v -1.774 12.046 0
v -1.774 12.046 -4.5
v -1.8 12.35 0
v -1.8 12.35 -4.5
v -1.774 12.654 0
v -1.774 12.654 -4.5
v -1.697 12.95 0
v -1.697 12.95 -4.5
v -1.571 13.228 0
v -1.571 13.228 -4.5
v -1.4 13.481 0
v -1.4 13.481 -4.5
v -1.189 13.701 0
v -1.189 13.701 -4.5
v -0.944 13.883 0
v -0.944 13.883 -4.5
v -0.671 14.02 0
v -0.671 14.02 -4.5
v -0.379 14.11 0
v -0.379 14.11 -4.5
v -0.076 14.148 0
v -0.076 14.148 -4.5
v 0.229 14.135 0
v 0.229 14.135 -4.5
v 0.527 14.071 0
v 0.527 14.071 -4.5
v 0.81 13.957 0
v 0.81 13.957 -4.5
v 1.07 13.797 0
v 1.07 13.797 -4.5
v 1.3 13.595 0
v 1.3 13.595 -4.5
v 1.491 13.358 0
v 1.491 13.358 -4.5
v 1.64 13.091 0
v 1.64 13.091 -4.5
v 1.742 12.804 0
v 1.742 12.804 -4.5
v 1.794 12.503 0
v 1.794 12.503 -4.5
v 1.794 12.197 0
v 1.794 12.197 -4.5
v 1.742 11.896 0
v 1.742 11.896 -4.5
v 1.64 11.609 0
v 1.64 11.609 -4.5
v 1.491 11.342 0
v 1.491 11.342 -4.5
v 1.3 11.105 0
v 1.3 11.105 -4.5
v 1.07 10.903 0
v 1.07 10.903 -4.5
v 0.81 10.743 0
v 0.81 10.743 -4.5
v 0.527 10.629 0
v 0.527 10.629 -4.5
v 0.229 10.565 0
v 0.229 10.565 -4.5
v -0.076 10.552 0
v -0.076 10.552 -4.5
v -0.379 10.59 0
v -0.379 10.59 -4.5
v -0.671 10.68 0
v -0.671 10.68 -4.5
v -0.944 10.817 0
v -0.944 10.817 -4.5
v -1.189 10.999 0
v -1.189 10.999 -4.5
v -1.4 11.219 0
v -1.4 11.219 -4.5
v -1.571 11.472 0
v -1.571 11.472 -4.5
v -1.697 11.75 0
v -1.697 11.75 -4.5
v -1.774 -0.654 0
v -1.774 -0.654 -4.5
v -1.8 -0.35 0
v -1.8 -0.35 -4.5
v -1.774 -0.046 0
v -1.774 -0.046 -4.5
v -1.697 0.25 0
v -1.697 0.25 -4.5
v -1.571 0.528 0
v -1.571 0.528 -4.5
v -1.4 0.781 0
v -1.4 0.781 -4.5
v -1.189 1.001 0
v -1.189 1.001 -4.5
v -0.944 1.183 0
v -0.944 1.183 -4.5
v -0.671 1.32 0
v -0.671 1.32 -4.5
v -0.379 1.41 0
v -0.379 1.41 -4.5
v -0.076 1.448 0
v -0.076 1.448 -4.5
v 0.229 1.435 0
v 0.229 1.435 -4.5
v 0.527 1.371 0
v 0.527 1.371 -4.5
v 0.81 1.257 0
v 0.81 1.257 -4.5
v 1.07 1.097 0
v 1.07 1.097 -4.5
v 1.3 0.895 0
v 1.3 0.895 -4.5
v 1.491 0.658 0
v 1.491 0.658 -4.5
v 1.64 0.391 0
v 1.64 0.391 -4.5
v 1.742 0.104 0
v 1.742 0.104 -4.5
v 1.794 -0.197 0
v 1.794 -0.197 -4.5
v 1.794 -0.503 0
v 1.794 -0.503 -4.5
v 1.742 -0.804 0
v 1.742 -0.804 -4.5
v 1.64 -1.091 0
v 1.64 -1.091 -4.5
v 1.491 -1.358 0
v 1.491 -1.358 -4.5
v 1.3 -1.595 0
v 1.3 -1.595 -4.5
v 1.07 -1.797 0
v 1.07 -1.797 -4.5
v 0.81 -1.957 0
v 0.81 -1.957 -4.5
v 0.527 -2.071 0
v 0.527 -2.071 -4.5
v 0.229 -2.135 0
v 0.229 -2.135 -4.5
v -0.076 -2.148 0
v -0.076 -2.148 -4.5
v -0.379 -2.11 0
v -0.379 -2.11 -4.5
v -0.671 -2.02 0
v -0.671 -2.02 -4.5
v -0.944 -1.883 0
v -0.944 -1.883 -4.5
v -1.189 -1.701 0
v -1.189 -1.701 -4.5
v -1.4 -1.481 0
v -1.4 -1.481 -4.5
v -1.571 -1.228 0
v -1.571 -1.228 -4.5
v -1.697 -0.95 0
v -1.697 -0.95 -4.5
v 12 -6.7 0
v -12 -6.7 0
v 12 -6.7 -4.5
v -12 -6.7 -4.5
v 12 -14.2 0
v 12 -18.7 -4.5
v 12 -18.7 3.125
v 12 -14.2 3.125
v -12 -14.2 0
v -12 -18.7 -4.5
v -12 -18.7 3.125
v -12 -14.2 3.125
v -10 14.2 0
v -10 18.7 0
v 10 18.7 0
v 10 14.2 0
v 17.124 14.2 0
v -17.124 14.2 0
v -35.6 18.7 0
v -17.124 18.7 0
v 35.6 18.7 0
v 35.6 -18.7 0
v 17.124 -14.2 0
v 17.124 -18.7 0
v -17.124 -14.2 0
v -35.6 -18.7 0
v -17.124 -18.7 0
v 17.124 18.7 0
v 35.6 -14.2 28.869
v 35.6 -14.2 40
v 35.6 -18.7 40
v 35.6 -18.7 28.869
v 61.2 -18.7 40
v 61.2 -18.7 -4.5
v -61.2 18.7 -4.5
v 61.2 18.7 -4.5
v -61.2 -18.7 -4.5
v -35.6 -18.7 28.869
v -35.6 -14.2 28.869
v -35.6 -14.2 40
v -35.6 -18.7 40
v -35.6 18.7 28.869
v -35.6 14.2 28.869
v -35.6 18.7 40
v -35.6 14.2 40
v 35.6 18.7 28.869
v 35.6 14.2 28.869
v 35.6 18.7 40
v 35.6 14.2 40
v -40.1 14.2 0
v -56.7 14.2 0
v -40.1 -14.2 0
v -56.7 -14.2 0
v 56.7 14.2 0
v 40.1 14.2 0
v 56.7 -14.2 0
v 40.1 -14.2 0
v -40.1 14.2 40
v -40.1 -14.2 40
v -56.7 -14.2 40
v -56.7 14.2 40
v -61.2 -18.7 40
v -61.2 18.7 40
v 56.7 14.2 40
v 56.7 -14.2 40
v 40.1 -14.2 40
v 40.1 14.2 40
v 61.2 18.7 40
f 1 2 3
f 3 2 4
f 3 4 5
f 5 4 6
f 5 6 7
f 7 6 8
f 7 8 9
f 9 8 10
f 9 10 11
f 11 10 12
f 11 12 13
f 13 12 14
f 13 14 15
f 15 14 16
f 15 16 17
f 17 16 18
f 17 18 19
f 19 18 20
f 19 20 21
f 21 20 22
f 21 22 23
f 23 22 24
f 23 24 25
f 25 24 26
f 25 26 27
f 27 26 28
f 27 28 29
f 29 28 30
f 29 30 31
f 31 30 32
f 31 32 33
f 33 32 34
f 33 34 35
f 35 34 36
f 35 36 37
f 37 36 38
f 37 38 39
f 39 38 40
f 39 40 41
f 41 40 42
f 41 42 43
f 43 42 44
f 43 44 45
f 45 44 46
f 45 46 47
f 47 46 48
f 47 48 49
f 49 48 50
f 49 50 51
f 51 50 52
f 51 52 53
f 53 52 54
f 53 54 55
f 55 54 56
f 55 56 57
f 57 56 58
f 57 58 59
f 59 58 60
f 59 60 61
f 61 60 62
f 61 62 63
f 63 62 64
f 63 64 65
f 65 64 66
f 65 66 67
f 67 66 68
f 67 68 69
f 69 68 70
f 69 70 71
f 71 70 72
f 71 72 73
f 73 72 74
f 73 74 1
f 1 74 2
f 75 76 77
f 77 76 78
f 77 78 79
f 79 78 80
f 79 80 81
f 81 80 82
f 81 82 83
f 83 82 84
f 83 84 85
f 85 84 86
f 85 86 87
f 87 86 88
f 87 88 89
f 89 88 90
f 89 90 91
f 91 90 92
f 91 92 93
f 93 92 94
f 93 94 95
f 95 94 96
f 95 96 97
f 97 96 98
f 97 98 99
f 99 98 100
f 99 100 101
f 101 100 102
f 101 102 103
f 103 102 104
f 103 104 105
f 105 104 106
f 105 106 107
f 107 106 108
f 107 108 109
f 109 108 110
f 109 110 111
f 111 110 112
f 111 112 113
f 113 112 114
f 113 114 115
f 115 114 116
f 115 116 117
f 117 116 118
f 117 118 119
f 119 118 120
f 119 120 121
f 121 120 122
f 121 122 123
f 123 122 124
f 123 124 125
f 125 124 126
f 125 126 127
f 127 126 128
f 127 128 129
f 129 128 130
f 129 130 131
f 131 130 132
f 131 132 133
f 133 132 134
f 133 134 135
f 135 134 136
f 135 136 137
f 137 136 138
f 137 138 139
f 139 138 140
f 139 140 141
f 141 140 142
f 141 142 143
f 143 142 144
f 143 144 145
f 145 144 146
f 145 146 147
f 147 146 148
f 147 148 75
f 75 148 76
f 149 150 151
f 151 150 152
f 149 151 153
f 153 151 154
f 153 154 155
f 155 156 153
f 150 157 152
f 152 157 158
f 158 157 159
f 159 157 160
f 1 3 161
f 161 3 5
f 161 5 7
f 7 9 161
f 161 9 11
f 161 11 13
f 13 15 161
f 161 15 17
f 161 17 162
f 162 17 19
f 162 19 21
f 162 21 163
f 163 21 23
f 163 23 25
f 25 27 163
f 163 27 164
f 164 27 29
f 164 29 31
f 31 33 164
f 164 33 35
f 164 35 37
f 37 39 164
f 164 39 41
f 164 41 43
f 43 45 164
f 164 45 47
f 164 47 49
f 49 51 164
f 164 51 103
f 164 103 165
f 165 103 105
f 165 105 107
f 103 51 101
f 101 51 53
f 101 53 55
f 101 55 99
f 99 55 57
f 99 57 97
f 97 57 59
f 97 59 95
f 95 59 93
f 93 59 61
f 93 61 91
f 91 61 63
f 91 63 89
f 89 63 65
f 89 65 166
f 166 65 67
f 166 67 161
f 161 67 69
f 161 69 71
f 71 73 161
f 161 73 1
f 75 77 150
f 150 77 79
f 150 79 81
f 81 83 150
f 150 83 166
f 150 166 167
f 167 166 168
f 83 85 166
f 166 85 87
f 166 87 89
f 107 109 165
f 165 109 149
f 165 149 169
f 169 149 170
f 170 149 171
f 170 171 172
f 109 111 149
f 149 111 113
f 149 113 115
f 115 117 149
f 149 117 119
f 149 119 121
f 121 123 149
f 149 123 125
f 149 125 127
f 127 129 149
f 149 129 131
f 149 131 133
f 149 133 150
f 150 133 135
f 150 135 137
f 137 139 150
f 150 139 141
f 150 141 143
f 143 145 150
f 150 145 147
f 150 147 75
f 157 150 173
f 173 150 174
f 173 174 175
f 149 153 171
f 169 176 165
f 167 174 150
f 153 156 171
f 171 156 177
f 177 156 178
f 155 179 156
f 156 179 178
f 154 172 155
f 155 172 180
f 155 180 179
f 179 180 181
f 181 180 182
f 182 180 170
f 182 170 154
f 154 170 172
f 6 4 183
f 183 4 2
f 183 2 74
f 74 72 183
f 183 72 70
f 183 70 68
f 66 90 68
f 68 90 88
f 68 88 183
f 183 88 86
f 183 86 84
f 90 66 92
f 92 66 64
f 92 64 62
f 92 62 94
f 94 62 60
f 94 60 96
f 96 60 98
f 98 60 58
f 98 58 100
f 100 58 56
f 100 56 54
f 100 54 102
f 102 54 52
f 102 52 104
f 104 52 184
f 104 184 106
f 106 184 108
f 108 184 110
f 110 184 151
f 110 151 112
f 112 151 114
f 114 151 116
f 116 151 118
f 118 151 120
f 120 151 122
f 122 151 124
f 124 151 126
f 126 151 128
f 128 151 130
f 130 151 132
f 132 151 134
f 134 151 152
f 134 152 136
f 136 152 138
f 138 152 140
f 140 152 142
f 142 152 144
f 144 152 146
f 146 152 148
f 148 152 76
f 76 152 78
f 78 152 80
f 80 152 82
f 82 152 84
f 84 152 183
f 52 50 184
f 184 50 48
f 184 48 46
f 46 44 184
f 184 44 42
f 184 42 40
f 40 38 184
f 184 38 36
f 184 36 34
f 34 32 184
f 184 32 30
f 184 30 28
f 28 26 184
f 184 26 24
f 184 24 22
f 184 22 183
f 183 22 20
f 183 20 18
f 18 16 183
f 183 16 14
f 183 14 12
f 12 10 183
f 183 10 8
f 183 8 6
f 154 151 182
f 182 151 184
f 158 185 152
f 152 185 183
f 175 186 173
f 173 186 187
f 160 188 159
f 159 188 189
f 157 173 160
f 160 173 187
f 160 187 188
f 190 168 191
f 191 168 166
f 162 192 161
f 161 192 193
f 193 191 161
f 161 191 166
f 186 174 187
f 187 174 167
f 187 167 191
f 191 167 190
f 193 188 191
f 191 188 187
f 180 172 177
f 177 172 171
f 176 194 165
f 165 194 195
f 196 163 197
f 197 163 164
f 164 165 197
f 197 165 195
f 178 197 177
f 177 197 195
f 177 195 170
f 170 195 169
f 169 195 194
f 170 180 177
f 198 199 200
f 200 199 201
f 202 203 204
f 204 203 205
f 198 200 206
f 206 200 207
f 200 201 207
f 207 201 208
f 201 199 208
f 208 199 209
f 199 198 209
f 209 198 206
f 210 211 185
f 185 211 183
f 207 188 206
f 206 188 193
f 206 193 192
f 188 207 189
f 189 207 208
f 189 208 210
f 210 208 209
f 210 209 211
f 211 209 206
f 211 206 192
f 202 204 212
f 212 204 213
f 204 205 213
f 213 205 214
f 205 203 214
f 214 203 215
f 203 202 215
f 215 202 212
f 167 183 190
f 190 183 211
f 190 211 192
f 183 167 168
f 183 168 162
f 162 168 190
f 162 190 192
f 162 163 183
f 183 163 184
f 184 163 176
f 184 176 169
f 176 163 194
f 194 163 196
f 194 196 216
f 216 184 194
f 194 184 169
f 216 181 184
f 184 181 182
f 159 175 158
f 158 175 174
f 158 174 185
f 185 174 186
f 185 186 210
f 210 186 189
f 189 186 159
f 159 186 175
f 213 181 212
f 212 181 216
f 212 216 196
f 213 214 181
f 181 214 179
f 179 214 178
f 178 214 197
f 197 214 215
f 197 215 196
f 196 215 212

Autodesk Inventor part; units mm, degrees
ref_plane "YZ Plane" through (0, 0, 0) normal (1, 0, 0) x (0, 1, 0)
ref_plane "XZ Plane" through (0, 0, 0) normal (0, 1, 0) x (-1, 0, 0)
ref_plane "XY Plane" through (0, 0, 0) normal (0, 0, 1) x (1, 0, 0)
sketch "Sketch6" plane through (0, 0, 0) normal (0, 0, 1) x (1, 0, 0)
  line L0 (40.1, 14.2) -> (56.7, 14.2)
  line L1 (56.7, 14.2) -> (56.7, -14.2)
  line L2 (56.7, -14.2) -> (40.1, -14.2)
  line L3 (40.1, -14.2) -> (40.1, 14.2)
  line L4 (35.6, -18.7) -> (61.2, -18.7)
  line L5 (61.2, -18.7) -> (61.2, 18.7)
  line L6 (61.2, 18.7) -> (35.6, 18.7)
  line L7 (35.6, 18.7) -> (35.6, -18.7)
  line L8 (-40.1, 14.2) -> (-56.7, 14.2)
  line L9 (-56.7, 14.2) -> (-56.7, -14.2)
  line L10 (-56.7, -14.2) -> (-40.1, -14.2)
  line L11 (-40.1, -14.2) -> (-40.1, 14.2)
  line L12 (-35.6, -18.7) -> (-61.2, -18.7)
  line L13 (-61.2, -18.7) -> (-61.2, 18.7)
  line L14 (-61.2, 18.7) -> (-35.6, 18.7)
  line L15 (-35.6, 18.7) -> (-35.6, -18.7)
  point P0 (35.6, 0)
  point P1 (35.6, 0)
  point P2 (-35.6, 0)
  point P3 (-35.6, 0)
extrude "Extrusion4" add sketch "Sketch6" along normal blind 40
sketch "Sketch7" plane through (0, 0, 0) normal (0, 0, -1) x (-1, 0, 0)
  line L0 (-35.6, -18.7) -> (-61.2, -18.7) construction
  line L1 (61.2, 18.7) -> (-61.2, 18.7)
  line L2 (-61.2, 18.7) -> (-61.2, -18.7)
  line L3 (-61.2, -18.7) -> (61.2, -18.7)
  line L4 (61.2, -18.7) -> (61.2, 18.7)
  point P0 (0, 0)
extrude "Extrusion5" add sketch "Sketch7" along normal blind 4.5
sketch "Sketch8" plane through (35.6, 18.7, 40) normal (0, 1, 0) x (1, 0, 0)
  line L0 (-71.2, 40) -> (0, 40) construction
  line L1 (0, 40) -> (0, 0) construction
  line L2 (-25.6, 40) -> (0, 0)
  line L3 (0, 11.1306) -> (-18.4764, 40)
  line L4 (-25.6, 40) -> (-18.4764, 40)
  line L5 (0, 11.1306) -> (0, 0)
  point P0 (-35.6, 40)
extrude "Extrusion6" add sketch "Sketch8" against normal blind 4.5
mirror "Mirror3" about plane through (0, 0, 0) normal (0, 1, 0) of "Extrusion6"
mirror "Mirror4" about plane through (0, 0, 0) normal (1, 0, 0) of "Extrusion6", "Mirror3"
sketch "Sketch9" plane through (0, 0, 0) normal (0, 0, 1) x (1, 0, 0)
  line L0 (12, -18.7) -> (12, -6.7)
  line L1 (-12, -6.7) -> (-12, -18.7)
  line L2 (-35.6, -18.7) -> (-10, -18.7) construction
  line L3 (12, -6.7) -> (-12, -6.7)
  line L4 (12, -18.7) -> (-12, -18.7)
  point P0 (0, 0)
extrude "Extrusion7" cut sketch "Sketch9" along normal mid plane 10
sketch "Sketch10" plane through (0, 0, -4.5) normal (0, 0, -1) x (-1, 0, 0)
  line L0 (12, -6.7) -> (-12, -6.7) construction
  line L1 (10, 18.7) -> (-10, 18.7) construction
  circle A0 centre (0, 12.35) radius 1.8
  circle A1 centre (0, -0.35) radius 1.8
  point P0 (0, 0)
extrude "Extrusion8" cut sketch "Sketch10" against normal blind 10
properties part number "Tablet_joint_Holder"
